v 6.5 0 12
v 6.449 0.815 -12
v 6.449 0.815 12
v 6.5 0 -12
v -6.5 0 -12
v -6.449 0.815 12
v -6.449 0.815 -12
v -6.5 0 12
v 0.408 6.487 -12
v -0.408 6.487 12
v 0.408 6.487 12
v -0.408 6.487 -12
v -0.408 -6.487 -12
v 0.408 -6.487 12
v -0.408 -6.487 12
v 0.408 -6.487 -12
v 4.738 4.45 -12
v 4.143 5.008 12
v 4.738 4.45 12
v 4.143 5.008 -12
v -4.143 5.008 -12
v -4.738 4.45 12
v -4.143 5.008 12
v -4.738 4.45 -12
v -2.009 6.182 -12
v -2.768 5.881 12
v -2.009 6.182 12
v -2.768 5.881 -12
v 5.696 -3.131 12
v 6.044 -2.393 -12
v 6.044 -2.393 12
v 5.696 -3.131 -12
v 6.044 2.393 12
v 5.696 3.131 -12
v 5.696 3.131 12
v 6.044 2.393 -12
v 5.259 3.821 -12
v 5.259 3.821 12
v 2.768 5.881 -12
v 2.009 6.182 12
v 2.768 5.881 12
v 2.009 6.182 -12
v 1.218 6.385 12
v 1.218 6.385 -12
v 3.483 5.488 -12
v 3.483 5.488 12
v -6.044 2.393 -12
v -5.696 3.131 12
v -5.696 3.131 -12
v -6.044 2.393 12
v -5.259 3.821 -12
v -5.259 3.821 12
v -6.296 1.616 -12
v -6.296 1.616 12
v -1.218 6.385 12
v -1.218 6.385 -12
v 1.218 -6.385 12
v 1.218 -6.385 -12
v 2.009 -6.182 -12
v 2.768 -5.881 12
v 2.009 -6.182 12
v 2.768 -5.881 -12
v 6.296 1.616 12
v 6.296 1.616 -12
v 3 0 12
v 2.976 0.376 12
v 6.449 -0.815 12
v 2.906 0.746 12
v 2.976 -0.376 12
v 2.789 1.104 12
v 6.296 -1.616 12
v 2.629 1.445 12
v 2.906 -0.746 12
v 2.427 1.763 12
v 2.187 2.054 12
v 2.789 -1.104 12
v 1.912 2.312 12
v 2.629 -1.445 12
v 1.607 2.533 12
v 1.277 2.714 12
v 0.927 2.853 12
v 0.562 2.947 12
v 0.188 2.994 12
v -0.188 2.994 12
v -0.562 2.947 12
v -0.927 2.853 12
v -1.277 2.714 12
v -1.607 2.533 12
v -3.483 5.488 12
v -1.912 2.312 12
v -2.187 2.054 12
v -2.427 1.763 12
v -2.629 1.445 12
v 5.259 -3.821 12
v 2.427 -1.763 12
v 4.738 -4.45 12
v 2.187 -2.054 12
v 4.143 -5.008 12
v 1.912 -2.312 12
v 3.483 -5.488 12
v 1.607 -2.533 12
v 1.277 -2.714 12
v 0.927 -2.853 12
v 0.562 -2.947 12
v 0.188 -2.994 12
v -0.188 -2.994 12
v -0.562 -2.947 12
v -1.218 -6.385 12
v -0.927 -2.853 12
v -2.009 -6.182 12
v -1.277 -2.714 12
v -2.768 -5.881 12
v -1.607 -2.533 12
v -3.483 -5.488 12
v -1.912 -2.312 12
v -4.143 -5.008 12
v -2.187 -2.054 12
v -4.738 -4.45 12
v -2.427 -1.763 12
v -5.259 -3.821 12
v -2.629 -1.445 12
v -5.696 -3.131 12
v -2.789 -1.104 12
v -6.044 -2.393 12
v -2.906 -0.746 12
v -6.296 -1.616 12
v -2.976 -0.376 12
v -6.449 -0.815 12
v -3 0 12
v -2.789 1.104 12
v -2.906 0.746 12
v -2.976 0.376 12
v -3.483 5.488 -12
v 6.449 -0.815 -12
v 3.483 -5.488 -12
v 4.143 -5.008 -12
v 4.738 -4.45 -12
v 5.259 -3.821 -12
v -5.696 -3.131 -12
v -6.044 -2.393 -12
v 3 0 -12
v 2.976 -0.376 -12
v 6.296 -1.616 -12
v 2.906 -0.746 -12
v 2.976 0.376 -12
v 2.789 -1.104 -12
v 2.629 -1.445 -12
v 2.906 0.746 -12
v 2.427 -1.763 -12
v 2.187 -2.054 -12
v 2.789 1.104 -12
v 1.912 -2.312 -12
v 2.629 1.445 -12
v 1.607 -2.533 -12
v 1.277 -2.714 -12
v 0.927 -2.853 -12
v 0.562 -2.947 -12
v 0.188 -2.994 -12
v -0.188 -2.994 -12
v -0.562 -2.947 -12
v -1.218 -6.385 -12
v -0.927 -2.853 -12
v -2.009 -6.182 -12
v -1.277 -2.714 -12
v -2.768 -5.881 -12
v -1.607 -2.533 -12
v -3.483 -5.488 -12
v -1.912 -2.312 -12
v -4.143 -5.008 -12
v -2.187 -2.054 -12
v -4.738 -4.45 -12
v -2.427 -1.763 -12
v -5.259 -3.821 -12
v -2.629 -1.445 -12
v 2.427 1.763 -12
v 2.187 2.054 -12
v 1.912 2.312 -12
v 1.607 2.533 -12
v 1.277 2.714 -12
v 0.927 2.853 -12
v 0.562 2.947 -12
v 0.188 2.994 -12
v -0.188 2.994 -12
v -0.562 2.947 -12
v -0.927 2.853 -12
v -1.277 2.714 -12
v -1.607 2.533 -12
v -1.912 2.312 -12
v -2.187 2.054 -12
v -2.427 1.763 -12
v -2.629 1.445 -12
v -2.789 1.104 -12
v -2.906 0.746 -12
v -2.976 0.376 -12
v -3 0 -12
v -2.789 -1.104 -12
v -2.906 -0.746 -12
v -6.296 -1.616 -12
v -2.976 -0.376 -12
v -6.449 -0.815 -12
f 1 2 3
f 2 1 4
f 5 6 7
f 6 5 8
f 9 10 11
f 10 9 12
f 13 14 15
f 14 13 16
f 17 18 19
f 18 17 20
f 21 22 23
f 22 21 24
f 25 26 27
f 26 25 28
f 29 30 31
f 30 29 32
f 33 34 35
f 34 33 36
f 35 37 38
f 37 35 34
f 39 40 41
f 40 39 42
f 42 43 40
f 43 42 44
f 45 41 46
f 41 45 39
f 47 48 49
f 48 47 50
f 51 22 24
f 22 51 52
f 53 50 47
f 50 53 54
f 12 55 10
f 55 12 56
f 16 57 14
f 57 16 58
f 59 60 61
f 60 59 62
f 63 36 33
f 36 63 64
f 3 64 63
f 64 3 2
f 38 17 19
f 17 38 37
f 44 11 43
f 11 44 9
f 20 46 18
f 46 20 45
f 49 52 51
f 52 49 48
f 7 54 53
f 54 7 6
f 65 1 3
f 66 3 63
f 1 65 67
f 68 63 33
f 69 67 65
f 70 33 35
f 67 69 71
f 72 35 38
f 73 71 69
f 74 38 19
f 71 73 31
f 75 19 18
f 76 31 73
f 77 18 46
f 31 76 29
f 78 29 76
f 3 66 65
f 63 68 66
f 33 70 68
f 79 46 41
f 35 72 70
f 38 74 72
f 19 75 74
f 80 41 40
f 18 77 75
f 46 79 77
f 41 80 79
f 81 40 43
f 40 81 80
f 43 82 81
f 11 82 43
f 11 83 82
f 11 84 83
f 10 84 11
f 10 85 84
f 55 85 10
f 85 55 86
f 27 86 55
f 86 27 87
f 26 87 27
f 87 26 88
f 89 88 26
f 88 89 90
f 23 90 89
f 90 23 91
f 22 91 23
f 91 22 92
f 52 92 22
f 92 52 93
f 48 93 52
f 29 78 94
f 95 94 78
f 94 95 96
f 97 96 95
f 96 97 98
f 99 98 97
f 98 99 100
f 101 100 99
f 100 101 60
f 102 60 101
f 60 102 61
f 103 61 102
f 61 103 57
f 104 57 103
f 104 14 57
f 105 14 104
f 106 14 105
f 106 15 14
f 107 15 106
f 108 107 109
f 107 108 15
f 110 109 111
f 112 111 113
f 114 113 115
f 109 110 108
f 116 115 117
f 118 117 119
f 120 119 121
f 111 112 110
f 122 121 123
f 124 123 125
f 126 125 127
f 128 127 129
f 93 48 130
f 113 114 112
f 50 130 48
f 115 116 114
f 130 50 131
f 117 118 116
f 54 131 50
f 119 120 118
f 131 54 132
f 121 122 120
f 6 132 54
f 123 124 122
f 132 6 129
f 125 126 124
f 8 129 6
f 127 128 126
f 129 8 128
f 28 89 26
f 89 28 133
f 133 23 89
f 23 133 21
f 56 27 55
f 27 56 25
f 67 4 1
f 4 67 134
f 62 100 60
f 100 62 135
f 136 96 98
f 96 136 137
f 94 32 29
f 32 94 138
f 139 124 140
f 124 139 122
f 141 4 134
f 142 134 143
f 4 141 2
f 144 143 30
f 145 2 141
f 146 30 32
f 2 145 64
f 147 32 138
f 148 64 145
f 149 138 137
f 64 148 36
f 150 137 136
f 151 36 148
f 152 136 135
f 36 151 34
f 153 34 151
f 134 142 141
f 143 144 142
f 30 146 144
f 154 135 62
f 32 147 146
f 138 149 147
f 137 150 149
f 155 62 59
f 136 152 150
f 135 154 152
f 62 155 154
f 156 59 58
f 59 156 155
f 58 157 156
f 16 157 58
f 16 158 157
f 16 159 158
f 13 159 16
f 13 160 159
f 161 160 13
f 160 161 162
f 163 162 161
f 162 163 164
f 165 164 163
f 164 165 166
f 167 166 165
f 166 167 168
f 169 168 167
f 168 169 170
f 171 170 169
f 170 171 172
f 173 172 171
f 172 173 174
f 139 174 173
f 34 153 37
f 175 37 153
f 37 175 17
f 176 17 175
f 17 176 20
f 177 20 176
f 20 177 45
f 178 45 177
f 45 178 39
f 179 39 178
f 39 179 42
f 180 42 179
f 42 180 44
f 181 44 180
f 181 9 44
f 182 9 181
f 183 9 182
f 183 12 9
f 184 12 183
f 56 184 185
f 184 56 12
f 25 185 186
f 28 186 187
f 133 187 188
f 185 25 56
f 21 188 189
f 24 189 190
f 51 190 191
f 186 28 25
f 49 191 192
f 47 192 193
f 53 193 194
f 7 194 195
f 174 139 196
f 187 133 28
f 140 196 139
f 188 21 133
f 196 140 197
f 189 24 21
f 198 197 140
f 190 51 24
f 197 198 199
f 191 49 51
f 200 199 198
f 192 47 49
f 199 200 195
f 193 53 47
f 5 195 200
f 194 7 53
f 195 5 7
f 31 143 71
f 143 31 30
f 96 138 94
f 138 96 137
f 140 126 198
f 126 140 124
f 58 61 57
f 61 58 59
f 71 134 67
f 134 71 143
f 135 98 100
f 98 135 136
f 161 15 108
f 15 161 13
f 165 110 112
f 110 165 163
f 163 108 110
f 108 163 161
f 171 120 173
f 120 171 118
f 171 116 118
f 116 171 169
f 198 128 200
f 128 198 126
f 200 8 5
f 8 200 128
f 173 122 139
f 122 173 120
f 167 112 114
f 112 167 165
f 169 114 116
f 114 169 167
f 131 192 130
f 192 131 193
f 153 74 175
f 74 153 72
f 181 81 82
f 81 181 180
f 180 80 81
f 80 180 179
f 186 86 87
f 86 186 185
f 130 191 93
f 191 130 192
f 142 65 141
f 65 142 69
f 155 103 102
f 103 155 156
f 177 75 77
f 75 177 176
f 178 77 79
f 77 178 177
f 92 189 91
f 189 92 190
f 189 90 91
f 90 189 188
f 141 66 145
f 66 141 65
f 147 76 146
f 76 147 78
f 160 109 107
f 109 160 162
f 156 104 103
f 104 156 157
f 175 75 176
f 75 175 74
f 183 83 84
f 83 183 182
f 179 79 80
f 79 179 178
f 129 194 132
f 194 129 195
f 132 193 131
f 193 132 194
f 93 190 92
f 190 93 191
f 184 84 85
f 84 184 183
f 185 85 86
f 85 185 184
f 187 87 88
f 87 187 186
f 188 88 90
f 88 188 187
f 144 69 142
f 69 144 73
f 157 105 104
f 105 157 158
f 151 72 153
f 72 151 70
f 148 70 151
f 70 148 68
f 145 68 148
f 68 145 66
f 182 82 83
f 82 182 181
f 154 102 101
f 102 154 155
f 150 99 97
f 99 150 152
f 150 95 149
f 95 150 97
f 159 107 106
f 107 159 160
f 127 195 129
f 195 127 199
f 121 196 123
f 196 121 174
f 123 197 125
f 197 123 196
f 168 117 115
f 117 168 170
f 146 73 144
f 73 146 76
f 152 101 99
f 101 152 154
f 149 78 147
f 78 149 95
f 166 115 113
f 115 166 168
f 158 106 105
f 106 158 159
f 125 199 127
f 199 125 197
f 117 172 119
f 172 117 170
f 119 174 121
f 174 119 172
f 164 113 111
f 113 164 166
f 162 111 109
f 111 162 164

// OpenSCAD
$fn = 50;


difference() {
	union() {
		translate(v = [0, 0, -12.0000000000]) {
			cylinder(h = 24, r = 6.5000000000);
		}
	}
	union() {
		translate(v = [0, 0, -100.0000000000]) {
			cylinder(h = 200, r = 3);
		}
	}
}
